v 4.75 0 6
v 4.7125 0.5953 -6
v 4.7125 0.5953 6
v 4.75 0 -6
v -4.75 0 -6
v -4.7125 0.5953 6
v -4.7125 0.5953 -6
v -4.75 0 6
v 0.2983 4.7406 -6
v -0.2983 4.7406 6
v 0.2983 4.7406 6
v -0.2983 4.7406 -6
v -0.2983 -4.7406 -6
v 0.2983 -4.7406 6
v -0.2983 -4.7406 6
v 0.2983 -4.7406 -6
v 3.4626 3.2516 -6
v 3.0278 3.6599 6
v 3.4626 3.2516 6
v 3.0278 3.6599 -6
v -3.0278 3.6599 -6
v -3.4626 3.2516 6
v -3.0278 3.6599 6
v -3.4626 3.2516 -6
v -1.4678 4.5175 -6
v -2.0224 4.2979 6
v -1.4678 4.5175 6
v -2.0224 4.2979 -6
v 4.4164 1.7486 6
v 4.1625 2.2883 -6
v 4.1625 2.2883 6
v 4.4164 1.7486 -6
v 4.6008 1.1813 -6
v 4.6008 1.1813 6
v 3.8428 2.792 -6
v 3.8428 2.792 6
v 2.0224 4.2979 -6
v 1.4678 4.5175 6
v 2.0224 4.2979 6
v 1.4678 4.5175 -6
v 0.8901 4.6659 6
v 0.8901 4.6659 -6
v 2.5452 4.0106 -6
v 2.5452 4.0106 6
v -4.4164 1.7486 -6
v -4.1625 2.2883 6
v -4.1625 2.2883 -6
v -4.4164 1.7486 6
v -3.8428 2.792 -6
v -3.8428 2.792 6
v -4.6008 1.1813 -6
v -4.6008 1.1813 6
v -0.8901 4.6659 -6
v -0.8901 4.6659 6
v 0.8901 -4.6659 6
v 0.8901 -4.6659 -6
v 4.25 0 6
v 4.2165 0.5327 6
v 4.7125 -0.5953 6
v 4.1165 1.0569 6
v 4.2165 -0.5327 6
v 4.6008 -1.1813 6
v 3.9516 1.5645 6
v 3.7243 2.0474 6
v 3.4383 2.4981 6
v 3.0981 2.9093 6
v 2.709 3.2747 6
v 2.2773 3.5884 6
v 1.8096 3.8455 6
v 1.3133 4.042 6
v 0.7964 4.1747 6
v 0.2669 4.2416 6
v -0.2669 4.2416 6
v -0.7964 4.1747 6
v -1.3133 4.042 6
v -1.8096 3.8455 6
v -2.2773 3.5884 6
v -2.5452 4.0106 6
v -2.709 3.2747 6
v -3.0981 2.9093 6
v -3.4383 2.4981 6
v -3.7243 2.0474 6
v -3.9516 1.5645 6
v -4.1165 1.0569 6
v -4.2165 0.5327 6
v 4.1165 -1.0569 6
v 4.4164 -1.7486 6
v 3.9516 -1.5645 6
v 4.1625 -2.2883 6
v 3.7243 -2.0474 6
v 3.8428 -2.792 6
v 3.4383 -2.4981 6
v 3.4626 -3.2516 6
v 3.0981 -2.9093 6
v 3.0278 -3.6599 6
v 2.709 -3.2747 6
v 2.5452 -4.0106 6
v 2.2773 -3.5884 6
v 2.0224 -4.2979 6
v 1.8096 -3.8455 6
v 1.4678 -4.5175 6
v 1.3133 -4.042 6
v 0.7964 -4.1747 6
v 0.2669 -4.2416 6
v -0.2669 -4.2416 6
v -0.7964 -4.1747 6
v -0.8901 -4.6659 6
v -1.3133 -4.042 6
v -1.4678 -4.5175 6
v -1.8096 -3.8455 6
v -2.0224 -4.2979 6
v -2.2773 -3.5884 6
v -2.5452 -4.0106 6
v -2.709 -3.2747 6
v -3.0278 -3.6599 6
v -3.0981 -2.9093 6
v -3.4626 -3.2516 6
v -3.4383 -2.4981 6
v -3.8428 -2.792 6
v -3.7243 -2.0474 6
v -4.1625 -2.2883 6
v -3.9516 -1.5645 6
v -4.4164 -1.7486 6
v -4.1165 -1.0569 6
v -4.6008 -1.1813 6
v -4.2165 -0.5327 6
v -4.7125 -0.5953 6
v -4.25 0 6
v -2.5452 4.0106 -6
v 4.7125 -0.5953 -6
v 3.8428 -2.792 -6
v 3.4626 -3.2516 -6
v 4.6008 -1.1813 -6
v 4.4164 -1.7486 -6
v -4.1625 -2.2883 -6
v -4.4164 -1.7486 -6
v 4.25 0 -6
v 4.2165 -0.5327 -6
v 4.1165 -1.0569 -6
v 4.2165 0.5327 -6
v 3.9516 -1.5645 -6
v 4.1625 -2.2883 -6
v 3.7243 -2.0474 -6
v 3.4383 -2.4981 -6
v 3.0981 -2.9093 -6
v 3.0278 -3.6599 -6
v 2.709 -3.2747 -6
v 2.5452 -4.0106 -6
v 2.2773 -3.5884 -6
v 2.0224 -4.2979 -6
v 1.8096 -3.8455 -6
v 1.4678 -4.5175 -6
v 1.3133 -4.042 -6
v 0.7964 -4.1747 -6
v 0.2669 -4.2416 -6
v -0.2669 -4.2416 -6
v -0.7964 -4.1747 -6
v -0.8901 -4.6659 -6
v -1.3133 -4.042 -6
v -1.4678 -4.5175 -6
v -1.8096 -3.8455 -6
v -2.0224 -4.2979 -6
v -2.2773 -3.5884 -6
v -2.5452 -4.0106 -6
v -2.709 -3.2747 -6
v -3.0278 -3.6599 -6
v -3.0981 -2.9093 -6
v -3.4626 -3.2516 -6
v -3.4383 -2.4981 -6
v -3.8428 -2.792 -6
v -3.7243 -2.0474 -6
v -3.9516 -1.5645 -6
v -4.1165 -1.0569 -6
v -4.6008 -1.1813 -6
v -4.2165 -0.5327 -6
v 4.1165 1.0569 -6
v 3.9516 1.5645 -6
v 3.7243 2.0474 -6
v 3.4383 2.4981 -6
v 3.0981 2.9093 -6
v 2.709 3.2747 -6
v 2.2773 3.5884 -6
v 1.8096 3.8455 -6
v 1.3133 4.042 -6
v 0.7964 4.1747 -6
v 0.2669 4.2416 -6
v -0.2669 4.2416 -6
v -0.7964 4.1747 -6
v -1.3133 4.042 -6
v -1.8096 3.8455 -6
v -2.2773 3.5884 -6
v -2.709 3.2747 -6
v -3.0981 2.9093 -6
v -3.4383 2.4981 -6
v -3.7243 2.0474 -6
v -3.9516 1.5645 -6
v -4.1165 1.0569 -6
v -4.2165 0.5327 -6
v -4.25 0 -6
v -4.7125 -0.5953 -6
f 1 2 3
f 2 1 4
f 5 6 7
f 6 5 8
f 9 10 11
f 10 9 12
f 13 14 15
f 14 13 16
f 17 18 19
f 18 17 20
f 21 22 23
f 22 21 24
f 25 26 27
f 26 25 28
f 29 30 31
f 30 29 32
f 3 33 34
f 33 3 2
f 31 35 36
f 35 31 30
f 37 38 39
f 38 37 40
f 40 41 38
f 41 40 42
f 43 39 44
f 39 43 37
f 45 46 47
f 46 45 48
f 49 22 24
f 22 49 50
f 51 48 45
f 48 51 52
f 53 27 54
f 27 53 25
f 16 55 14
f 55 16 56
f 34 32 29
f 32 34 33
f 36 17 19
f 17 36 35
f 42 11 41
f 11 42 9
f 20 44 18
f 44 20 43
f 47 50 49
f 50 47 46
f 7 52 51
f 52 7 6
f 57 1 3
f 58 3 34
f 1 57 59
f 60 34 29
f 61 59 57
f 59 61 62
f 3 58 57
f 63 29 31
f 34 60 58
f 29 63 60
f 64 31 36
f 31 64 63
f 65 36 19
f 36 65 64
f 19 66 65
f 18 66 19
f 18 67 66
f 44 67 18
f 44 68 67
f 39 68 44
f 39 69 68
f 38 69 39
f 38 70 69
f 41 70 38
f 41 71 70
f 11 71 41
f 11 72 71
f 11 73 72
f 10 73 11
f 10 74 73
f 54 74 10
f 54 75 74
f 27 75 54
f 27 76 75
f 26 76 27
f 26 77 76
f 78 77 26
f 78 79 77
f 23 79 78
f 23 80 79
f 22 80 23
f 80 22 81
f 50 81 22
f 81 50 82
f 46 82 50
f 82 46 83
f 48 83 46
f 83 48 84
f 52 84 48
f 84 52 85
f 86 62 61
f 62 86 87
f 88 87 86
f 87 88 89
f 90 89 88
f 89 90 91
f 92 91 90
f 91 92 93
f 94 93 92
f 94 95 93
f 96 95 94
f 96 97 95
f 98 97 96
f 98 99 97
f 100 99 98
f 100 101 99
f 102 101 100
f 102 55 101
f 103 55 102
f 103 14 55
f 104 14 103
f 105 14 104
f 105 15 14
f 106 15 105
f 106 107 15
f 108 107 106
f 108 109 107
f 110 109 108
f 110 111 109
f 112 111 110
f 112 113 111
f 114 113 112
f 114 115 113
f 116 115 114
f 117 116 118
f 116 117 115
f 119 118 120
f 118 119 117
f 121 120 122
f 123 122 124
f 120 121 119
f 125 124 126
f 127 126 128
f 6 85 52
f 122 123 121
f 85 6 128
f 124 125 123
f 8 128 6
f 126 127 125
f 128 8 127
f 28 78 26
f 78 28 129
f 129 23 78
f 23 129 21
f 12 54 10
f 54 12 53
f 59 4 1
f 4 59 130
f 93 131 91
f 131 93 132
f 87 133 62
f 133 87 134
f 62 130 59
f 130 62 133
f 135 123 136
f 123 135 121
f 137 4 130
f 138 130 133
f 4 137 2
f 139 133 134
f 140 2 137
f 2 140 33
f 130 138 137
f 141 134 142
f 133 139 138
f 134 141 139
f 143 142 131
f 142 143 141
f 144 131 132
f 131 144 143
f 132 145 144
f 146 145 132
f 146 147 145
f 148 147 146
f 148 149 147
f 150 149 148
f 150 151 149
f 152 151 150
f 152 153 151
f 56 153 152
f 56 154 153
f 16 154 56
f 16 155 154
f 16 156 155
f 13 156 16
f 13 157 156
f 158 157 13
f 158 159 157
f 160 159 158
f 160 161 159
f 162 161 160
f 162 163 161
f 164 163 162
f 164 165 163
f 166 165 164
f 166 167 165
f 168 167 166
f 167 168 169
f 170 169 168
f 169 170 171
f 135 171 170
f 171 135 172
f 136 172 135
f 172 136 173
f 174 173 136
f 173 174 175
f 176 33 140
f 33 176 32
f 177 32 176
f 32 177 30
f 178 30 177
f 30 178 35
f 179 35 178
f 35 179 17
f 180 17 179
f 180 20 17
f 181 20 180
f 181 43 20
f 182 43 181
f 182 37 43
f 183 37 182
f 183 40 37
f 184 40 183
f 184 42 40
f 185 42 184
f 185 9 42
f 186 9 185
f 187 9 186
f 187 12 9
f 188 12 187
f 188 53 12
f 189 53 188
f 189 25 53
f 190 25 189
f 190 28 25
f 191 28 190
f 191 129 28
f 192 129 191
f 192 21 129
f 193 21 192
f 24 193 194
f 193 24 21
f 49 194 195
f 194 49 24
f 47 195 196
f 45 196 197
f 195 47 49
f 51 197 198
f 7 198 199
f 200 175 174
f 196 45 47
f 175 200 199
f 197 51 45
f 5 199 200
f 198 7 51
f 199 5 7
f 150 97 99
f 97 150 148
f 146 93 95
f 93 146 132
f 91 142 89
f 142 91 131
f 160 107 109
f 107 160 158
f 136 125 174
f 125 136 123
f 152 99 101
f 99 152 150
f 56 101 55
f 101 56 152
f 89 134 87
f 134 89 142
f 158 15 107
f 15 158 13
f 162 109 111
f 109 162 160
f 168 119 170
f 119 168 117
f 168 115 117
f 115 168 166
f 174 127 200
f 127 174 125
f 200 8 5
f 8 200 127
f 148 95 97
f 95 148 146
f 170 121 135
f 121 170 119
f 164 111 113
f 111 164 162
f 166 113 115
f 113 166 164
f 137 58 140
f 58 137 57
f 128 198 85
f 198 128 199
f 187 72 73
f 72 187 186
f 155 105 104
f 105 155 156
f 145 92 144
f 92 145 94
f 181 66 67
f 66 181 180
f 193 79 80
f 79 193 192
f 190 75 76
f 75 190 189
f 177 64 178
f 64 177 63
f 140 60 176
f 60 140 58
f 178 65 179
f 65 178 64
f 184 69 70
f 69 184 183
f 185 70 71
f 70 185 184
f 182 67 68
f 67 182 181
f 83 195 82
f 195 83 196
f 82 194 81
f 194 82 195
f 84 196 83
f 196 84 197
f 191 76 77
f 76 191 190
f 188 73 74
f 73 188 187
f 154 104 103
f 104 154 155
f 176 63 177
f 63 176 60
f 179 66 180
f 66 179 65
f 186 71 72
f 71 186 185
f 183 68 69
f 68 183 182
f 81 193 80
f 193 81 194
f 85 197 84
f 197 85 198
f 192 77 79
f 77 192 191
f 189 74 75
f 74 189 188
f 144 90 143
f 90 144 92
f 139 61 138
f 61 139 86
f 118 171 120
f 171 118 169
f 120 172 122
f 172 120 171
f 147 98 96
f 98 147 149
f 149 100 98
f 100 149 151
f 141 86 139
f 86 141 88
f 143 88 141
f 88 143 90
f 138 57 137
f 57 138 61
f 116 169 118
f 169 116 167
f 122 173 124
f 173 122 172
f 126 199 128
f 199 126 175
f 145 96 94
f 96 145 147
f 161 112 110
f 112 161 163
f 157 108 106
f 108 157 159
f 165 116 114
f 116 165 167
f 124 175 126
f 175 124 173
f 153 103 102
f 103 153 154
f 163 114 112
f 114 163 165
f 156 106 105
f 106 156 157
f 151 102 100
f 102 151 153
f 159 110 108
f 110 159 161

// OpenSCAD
$fn = 50;


difference() {
	union() {
		translate(v = [0, 0, -6.0000000000]) {
			cylinder(h = 12, r = 4.7500000000);
		}
	}
	union() {
		translate(v = [0, 0, -100.0000000000]) {
			cylinder(h = 200, r = 4.2500000000);
		}
	}
}
